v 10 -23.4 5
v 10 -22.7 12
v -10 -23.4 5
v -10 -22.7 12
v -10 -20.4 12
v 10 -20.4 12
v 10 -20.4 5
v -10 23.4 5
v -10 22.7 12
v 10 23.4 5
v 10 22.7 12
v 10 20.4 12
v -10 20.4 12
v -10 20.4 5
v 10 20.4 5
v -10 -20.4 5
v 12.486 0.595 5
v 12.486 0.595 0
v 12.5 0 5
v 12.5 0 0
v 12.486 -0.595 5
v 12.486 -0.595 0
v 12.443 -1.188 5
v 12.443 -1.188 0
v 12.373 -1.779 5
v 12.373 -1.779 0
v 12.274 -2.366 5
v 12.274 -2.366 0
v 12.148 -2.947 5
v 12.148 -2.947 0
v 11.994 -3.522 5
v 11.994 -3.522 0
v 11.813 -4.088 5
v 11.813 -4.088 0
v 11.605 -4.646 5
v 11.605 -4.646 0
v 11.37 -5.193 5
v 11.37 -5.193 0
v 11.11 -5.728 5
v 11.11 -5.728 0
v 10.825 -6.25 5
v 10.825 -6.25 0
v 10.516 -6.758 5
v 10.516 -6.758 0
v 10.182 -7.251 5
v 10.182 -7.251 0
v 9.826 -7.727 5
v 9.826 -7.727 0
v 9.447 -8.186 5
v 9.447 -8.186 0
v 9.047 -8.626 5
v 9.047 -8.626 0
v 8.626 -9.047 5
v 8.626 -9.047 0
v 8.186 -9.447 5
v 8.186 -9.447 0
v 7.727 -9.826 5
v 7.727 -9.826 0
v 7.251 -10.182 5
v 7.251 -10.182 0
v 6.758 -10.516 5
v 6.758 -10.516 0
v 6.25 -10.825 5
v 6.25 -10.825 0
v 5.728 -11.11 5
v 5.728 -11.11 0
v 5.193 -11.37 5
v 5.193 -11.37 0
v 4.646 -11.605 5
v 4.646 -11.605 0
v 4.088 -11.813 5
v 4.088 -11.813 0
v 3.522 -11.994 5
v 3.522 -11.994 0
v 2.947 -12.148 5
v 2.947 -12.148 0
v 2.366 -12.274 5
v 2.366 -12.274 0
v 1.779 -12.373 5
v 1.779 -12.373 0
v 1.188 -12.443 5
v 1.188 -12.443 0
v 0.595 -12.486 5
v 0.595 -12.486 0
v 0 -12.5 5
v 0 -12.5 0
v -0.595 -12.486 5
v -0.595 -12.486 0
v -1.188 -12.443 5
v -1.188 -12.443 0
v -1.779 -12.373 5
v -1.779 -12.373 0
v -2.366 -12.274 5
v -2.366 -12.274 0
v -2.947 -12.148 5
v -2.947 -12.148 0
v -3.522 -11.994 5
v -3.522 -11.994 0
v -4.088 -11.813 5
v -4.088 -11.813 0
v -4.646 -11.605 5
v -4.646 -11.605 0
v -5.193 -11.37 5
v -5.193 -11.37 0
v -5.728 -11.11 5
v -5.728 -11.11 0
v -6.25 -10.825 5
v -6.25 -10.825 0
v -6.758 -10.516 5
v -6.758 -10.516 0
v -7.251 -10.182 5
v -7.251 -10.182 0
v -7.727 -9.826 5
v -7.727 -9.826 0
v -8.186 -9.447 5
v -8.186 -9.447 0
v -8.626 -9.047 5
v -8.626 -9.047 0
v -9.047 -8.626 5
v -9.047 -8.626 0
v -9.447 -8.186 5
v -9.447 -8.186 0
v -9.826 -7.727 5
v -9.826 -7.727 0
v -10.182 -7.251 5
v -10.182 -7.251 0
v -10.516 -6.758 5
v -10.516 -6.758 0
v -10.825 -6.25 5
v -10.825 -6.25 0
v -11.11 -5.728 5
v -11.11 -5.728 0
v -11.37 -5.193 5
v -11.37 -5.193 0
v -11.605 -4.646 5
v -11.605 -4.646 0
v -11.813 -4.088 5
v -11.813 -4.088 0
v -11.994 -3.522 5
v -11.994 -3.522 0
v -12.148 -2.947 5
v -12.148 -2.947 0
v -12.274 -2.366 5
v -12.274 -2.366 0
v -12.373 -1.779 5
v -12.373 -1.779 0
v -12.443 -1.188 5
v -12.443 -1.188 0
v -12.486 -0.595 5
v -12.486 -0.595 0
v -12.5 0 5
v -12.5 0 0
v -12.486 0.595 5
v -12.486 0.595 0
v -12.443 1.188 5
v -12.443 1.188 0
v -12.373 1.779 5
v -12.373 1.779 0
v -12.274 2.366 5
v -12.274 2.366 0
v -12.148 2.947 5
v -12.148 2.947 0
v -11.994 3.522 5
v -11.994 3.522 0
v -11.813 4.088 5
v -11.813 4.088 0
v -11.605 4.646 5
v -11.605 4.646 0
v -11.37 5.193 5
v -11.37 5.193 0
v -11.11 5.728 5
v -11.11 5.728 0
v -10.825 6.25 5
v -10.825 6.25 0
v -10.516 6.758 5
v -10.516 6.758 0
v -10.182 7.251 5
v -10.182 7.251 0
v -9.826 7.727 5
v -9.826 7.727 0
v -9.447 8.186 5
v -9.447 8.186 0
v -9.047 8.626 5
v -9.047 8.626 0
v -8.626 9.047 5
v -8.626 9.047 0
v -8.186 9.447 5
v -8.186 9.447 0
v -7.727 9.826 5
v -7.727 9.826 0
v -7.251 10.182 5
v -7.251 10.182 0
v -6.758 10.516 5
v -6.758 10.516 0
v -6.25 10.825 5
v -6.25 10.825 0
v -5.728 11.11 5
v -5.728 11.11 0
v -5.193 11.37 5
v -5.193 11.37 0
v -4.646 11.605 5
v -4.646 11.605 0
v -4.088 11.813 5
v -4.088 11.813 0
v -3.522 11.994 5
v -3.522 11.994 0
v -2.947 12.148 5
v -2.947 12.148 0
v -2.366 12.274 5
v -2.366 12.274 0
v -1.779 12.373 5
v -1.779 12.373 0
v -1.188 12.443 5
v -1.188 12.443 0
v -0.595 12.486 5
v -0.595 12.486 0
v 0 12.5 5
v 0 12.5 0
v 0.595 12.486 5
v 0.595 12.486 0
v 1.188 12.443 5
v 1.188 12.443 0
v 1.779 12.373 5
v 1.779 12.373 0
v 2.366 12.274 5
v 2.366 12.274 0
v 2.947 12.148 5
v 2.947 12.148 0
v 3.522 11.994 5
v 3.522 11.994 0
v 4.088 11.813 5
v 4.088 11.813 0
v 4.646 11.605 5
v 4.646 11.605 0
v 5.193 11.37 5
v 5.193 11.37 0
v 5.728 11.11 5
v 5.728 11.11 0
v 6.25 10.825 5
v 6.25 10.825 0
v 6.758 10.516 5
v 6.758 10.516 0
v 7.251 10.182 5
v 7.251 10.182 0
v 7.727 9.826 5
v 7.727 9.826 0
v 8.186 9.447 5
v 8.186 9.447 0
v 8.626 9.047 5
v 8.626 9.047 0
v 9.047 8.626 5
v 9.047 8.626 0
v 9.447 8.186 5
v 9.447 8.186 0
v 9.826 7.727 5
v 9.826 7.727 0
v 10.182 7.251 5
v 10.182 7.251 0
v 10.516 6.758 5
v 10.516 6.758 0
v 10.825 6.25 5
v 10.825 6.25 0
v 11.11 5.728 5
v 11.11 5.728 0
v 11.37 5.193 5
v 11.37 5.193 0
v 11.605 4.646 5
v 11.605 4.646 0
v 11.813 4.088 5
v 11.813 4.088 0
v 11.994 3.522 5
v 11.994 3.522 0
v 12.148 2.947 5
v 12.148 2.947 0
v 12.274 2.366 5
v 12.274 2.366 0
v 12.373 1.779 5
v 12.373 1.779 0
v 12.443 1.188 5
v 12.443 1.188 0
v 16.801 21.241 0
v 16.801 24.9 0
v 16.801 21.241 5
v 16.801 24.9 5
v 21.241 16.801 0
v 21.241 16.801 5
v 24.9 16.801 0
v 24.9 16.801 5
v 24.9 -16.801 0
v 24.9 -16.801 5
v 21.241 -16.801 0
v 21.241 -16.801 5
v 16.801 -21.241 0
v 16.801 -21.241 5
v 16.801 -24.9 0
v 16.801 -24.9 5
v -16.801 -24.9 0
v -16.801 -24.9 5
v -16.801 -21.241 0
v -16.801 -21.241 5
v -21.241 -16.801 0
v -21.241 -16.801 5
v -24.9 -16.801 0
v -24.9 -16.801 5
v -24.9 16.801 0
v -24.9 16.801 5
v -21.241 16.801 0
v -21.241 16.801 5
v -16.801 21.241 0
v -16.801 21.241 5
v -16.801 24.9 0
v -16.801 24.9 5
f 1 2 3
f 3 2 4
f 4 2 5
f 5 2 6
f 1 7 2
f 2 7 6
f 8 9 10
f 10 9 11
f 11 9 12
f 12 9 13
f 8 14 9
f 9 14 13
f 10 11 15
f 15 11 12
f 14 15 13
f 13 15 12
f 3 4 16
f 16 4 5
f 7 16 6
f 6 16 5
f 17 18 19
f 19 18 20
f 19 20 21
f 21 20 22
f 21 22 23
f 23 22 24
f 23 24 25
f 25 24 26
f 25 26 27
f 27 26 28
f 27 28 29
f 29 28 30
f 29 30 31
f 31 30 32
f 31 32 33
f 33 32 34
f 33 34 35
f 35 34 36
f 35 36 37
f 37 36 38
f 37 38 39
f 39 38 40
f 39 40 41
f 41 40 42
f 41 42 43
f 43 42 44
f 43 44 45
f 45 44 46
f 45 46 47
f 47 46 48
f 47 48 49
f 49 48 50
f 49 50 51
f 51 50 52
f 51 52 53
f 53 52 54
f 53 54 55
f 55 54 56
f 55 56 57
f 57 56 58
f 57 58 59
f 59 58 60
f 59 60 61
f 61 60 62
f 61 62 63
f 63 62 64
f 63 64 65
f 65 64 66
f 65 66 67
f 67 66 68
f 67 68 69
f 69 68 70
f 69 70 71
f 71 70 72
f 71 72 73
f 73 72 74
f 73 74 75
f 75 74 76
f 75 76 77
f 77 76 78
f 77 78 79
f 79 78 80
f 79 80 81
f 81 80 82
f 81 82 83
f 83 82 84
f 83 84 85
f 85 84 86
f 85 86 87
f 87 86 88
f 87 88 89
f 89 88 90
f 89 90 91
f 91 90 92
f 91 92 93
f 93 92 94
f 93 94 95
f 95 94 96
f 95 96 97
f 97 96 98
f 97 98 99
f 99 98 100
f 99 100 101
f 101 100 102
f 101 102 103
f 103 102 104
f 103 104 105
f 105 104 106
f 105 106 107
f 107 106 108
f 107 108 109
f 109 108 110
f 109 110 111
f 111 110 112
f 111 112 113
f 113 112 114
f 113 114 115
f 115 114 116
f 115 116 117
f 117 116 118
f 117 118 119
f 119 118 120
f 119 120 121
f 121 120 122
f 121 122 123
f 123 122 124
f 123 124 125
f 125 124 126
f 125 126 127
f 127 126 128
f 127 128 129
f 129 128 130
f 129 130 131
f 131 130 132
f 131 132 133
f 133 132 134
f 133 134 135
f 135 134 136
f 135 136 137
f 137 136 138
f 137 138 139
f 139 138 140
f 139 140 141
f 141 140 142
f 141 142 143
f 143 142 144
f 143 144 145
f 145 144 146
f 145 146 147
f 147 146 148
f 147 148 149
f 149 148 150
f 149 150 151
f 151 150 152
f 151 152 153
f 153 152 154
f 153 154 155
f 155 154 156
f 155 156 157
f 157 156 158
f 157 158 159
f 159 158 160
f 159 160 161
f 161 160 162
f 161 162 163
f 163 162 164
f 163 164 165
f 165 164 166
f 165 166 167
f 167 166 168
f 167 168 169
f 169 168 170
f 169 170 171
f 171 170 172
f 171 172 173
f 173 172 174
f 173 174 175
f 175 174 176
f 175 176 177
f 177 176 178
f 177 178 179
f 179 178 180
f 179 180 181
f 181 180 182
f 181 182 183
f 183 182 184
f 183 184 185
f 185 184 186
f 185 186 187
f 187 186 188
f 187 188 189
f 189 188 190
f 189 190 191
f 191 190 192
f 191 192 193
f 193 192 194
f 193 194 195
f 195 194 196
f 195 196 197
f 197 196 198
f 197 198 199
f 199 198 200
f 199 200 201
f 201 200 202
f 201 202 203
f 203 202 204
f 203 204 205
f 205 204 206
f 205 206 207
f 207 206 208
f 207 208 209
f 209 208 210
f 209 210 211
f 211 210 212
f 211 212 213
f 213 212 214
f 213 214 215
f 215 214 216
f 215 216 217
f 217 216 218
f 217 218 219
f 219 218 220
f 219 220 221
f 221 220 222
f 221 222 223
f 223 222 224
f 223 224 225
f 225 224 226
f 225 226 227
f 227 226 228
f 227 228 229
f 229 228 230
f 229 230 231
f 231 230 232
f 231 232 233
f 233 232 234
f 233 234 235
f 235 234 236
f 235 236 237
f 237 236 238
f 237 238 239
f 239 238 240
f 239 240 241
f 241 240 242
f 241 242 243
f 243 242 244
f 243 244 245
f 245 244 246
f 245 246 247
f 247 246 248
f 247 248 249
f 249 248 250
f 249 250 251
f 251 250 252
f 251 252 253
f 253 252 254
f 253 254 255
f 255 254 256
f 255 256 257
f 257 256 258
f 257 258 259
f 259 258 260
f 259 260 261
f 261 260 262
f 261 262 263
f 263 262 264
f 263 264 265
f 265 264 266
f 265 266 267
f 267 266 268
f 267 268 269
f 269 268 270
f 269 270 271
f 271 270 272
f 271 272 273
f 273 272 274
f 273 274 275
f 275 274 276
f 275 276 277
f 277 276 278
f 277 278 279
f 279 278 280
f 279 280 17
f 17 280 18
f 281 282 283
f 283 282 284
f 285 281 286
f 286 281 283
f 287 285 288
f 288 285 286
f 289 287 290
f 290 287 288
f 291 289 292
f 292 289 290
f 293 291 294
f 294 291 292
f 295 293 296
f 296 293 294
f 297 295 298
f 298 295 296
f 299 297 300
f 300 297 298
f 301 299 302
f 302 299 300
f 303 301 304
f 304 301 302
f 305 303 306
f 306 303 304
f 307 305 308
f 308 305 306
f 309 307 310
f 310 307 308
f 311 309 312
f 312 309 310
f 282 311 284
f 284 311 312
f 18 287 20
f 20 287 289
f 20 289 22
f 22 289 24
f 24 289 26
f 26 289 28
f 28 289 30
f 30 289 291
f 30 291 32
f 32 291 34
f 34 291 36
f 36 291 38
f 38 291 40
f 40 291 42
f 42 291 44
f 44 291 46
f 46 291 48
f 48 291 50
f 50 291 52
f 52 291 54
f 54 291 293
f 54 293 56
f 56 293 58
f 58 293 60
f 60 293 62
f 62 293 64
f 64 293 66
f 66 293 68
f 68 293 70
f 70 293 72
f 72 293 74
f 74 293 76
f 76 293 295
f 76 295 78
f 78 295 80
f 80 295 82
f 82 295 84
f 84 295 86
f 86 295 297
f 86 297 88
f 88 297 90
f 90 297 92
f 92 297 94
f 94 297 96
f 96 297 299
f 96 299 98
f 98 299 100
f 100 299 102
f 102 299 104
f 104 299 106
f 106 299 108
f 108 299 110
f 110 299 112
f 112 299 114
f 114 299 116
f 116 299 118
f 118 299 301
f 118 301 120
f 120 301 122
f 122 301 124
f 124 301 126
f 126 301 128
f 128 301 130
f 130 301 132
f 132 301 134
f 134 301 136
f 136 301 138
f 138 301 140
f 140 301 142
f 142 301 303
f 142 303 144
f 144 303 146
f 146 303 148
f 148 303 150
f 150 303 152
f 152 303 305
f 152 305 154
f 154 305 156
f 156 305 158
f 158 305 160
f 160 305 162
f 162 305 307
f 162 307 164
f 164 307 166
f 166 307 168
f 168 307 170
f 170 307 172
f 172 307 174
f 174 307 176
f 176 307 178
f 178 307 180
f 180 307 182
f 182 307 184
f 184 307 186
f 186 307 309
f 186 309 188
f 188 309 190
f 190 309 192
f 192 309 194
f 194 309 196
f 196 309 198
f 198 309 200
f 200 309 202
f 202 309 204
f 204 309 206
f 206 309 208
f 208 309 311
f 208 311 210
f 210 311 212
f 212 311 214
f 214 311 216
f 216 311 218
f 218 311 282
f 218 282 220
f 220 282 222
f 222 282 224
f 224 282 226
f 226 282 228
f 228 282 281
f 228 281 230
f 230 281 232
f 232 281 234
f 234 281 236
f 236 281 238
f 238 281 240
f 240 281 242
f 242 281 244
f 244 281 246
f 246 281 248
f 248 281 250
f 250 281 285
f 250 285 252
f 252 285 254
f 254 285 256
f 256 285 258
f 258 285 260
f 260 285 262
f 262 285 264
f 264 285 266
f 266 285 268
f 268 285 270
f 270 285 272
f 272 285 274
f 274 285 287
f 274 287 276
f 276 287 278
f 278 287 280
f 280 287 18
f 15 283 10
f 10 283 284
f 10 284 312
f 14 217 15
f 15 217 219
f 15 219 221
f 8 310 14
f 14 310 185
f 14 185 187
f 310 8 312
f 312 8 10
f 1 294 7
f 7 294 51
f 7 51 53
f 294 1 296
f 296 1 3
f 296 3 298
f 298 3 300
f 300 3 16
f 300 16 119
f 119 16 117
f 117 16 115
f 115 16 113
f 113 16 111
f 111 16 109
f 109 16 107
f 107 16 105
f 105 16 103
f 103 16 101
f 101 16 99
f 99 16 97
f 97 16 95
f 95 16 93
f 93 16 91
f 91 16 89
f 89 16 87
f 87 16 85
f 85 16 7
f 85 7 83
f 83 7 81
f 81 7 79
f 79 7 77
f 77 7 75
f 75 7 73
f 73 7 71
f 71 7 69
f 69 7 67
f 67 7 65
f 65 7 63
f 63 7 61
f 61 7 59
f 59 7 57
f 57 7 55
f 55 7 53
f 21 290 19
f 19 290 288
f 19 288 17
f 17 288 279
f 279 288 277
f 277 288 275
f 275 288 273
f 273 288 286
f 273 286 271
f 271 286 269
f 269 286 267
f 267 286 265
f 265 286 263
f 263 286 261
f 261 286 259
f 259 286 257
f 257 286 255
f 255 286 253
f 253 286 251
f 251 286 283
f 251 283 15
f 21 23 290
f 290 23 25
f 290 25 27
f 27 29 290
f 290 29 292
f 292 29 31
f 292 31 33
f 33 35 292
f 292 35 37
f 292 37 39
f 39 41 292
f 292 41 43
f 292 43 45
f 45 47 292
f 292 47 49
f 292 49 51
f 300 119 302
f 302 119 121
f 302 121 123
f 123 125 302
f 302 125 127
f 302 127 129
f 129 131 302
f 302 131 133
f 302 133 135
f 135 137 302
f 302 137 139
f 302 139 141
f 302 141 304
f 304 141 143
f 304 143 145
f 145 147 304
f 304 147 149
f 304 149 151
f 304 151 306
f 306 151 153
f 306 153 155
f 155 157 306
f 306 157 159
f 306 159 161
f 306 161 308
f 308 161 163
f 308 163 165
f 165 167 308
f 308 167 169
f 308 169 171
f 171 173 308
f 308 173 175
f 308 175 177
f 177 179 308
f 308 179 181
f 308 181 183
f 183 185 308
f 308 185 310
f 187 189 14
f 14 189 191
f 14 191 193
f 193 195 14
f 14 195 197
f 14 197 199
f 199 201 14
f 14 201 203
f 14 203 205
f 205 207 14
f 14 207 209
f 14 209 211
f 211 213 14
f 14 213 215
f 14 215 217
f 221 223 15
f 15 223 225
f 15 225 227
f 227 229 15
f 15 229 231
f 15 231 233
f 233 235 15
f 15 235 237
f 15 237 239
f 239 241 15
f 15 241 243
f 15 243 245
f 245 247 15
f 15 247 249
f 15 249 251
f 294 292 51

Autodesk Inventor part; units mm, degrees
ref_plane "YZ Plane" through (0, 0, 0) normal (1, 0, 0) x (0, 1, 0)
ref_plane "XZ Plane" through (0, 0, 0) normal (0, 1, 0) x (-1, 0, 0)
ref_plane "XY Plane" through (0, 0, 0) normal (0, 0, 1) x (1, 0, 0)
sketch "Sketch1" plane through (0, 0, 0) normal (0, 0, 1) x (1, 0, 0)
  line L0 (-34.86, 0) -> (34.86, 0) construction
  line L1 (0, -34.86) -> (0, 34.86) construction
  line L2 (0, 0) -> (11.1575, 11.1575) construction
  line L3 (0, 0) -> (15.7791, 0) construction
  line L4 (0, 24.9) -> (16.8009, 24.9)
  line L5 (16.8009, 24.9) -> (16.8009, 21.2415)
  line L6 (16.8009, 21.2415) -> (19.0212, 19.0212)
  line L7 (24.9, 0) -> (24.9, 16.8009)
  line L8 (24.9, 16.8009) -> (21.2415, 16.8009)
  line L9 (21.2415, 16.8009) -> (19.0212, 19.0212)
  line L10 (0, -24.9) -> (16.8009, -24.9)
  line L11 (16.8009, -24.9) -> (16.8009, -21.2415)
  line L12 (16.8009, -21.2415) -> (19.0212, -19.0212)
  line L13 (24.9, 0) -> (24.9, -16.8009)
  line L14 (24.9, -16.8009) -> (21.2415, -16.8009)
  line L15 (21.2415, -16.8009) -> (19.0212, -19.0212)
  line L16 (0, 24.9) -> (-16.8009, 24.9)
  line L17 (-16.8009, 24.9) -> (-16.8009, 21.2415)
  line L18 (-16.8009, 21.2415) -> (-19.0212, 19.0212)
  line L19 (-24.9, 16.8009) -> (-21.2415, 16.8009)
  line L20 (-21.2415, 16.8009) -> (-19.0212, 19.0212)
  line L21 (0, -24.9) -> (-16.8009, -24.9)
  line L22 (-16.8009, -24.9) -> (-16.8009, -21.2415)
  line L23 (-16.8009, -21.2415) -> (-19.0212, -19.0212)
  line L24 (-21.2415, -16.8009) -> (-19.0212, -19.0212)
  line L25 (-24.9, -16.8009) -> (-21.2415, -16.8009)
  line L26 (-24.9, 0) -> (-24.9, -16.8009)
  line L27 (-24.9, 0) -> (-24.9, 16.8009)
  circle A0 centre (0, 0) radius 12.5
  dimension "d0" = 45
  dimension "d2" = 24.9
  dimension "d3" = 3.14
  dimension "d4" = 26.9
  dimension "d5" = 25
extrude "Extrusion1" add sketch "Sketch1" along normal blind 5
sketch "Sketch2" plane through (0, 0, 5) normal (0, 0, 1) x (1, 0, 0)
  circle A0 centre (0, 0) radius 12.5 projected
  line L0 (16.8009, 24.9) -> (-16.8009, 24.9) projected
  line L1 (-16.8009, 24.9) -> (-16.8009, 21.2415) projected
  line L2 (-16.8009, 21.2415) -> (-21.2415, 16.8009) projected
  line L3 (-21.2415, 16.8009) -> (-24.9, 16.8009) projected
  line L4 (-24.9, 16.8009) -> (-24.9, -16.8009) projected
  line L5 (-24.9, -16.8009) -> (-21.2415, -16.8009) projected
  line L6 (-21.2415, -16.8009) -> (-16.8009, -21.2415) projected
  line L7 (-16.8009, -21.2415) -> (-16.8009, -24.9) projected
  line L8 (-16.8009, -24.9) -> (16.8009, -24.9) projected
  line L9 (16.8009, -24.9) -> (16.8009, -21.2415) projected
  line L10 (16.8009, -21.2415) -> (21.2415, -16.8009) projected
  line L11 (21.2415, -16.8009) -> (24.9, -16.8009) projected
  line L12 (24.9, -16.8009) -> (24.9, 16.8009) projected
  line L13 (24.9, 16.8009) -> (21.2415, 16.8009) projected
  line L14 (21.2415, 16.8009) -> (16.8009, 21.2415) projected
  line L15 (16.8009, 21.2415) -> (16.8009, 24.9) projected
  line L16 (-34.86, 0) -> (34.86, 0) construction
  line L17 (0, -34.86) -> (0, 34.86) construction
  line L18 (-10, 23.4) -> (10, 23.4)
  line L19 (10, 23.4) -> (10, 20.4)
  line L20 (10, 20.4) -> (-10, 20.4)
  line L21 (-10, 20.4) -> (-10, 23.4)
  line L22 (-10, -23.4) -> (10, -23.4)
  line L23 (10, -23.4) -> (10, -20.4)
  line L24 (10, -20.4) -> (-10, -20.4)
  line L25 (-10, -20.4) -> (-10, -23.4)
  dimension "d8" = 20
  dimension "d9" = 3
  dimension "d10" = 1.5
  dimension "d19" = 40.8
  dimension "d20" = 46.8
extrude "Extrusion2" add sketch "Sketch2" along normal blind 7 contours L18 L19 L20 L21 | L25 L24 L23 L22
chamfer "Fase1" distance 0.7 distance2 7 1 edges at (0, 23.4, 12) measured on face at (3.3333, 21.4, 12)
chamfer "Fase2" distance 0.7 distance2 7 1 edges at (0, -23.4, 12) measured on face at (-3.3333, -21.4, 12)
properties part number "20_Cube_insert_Sample_holder"
